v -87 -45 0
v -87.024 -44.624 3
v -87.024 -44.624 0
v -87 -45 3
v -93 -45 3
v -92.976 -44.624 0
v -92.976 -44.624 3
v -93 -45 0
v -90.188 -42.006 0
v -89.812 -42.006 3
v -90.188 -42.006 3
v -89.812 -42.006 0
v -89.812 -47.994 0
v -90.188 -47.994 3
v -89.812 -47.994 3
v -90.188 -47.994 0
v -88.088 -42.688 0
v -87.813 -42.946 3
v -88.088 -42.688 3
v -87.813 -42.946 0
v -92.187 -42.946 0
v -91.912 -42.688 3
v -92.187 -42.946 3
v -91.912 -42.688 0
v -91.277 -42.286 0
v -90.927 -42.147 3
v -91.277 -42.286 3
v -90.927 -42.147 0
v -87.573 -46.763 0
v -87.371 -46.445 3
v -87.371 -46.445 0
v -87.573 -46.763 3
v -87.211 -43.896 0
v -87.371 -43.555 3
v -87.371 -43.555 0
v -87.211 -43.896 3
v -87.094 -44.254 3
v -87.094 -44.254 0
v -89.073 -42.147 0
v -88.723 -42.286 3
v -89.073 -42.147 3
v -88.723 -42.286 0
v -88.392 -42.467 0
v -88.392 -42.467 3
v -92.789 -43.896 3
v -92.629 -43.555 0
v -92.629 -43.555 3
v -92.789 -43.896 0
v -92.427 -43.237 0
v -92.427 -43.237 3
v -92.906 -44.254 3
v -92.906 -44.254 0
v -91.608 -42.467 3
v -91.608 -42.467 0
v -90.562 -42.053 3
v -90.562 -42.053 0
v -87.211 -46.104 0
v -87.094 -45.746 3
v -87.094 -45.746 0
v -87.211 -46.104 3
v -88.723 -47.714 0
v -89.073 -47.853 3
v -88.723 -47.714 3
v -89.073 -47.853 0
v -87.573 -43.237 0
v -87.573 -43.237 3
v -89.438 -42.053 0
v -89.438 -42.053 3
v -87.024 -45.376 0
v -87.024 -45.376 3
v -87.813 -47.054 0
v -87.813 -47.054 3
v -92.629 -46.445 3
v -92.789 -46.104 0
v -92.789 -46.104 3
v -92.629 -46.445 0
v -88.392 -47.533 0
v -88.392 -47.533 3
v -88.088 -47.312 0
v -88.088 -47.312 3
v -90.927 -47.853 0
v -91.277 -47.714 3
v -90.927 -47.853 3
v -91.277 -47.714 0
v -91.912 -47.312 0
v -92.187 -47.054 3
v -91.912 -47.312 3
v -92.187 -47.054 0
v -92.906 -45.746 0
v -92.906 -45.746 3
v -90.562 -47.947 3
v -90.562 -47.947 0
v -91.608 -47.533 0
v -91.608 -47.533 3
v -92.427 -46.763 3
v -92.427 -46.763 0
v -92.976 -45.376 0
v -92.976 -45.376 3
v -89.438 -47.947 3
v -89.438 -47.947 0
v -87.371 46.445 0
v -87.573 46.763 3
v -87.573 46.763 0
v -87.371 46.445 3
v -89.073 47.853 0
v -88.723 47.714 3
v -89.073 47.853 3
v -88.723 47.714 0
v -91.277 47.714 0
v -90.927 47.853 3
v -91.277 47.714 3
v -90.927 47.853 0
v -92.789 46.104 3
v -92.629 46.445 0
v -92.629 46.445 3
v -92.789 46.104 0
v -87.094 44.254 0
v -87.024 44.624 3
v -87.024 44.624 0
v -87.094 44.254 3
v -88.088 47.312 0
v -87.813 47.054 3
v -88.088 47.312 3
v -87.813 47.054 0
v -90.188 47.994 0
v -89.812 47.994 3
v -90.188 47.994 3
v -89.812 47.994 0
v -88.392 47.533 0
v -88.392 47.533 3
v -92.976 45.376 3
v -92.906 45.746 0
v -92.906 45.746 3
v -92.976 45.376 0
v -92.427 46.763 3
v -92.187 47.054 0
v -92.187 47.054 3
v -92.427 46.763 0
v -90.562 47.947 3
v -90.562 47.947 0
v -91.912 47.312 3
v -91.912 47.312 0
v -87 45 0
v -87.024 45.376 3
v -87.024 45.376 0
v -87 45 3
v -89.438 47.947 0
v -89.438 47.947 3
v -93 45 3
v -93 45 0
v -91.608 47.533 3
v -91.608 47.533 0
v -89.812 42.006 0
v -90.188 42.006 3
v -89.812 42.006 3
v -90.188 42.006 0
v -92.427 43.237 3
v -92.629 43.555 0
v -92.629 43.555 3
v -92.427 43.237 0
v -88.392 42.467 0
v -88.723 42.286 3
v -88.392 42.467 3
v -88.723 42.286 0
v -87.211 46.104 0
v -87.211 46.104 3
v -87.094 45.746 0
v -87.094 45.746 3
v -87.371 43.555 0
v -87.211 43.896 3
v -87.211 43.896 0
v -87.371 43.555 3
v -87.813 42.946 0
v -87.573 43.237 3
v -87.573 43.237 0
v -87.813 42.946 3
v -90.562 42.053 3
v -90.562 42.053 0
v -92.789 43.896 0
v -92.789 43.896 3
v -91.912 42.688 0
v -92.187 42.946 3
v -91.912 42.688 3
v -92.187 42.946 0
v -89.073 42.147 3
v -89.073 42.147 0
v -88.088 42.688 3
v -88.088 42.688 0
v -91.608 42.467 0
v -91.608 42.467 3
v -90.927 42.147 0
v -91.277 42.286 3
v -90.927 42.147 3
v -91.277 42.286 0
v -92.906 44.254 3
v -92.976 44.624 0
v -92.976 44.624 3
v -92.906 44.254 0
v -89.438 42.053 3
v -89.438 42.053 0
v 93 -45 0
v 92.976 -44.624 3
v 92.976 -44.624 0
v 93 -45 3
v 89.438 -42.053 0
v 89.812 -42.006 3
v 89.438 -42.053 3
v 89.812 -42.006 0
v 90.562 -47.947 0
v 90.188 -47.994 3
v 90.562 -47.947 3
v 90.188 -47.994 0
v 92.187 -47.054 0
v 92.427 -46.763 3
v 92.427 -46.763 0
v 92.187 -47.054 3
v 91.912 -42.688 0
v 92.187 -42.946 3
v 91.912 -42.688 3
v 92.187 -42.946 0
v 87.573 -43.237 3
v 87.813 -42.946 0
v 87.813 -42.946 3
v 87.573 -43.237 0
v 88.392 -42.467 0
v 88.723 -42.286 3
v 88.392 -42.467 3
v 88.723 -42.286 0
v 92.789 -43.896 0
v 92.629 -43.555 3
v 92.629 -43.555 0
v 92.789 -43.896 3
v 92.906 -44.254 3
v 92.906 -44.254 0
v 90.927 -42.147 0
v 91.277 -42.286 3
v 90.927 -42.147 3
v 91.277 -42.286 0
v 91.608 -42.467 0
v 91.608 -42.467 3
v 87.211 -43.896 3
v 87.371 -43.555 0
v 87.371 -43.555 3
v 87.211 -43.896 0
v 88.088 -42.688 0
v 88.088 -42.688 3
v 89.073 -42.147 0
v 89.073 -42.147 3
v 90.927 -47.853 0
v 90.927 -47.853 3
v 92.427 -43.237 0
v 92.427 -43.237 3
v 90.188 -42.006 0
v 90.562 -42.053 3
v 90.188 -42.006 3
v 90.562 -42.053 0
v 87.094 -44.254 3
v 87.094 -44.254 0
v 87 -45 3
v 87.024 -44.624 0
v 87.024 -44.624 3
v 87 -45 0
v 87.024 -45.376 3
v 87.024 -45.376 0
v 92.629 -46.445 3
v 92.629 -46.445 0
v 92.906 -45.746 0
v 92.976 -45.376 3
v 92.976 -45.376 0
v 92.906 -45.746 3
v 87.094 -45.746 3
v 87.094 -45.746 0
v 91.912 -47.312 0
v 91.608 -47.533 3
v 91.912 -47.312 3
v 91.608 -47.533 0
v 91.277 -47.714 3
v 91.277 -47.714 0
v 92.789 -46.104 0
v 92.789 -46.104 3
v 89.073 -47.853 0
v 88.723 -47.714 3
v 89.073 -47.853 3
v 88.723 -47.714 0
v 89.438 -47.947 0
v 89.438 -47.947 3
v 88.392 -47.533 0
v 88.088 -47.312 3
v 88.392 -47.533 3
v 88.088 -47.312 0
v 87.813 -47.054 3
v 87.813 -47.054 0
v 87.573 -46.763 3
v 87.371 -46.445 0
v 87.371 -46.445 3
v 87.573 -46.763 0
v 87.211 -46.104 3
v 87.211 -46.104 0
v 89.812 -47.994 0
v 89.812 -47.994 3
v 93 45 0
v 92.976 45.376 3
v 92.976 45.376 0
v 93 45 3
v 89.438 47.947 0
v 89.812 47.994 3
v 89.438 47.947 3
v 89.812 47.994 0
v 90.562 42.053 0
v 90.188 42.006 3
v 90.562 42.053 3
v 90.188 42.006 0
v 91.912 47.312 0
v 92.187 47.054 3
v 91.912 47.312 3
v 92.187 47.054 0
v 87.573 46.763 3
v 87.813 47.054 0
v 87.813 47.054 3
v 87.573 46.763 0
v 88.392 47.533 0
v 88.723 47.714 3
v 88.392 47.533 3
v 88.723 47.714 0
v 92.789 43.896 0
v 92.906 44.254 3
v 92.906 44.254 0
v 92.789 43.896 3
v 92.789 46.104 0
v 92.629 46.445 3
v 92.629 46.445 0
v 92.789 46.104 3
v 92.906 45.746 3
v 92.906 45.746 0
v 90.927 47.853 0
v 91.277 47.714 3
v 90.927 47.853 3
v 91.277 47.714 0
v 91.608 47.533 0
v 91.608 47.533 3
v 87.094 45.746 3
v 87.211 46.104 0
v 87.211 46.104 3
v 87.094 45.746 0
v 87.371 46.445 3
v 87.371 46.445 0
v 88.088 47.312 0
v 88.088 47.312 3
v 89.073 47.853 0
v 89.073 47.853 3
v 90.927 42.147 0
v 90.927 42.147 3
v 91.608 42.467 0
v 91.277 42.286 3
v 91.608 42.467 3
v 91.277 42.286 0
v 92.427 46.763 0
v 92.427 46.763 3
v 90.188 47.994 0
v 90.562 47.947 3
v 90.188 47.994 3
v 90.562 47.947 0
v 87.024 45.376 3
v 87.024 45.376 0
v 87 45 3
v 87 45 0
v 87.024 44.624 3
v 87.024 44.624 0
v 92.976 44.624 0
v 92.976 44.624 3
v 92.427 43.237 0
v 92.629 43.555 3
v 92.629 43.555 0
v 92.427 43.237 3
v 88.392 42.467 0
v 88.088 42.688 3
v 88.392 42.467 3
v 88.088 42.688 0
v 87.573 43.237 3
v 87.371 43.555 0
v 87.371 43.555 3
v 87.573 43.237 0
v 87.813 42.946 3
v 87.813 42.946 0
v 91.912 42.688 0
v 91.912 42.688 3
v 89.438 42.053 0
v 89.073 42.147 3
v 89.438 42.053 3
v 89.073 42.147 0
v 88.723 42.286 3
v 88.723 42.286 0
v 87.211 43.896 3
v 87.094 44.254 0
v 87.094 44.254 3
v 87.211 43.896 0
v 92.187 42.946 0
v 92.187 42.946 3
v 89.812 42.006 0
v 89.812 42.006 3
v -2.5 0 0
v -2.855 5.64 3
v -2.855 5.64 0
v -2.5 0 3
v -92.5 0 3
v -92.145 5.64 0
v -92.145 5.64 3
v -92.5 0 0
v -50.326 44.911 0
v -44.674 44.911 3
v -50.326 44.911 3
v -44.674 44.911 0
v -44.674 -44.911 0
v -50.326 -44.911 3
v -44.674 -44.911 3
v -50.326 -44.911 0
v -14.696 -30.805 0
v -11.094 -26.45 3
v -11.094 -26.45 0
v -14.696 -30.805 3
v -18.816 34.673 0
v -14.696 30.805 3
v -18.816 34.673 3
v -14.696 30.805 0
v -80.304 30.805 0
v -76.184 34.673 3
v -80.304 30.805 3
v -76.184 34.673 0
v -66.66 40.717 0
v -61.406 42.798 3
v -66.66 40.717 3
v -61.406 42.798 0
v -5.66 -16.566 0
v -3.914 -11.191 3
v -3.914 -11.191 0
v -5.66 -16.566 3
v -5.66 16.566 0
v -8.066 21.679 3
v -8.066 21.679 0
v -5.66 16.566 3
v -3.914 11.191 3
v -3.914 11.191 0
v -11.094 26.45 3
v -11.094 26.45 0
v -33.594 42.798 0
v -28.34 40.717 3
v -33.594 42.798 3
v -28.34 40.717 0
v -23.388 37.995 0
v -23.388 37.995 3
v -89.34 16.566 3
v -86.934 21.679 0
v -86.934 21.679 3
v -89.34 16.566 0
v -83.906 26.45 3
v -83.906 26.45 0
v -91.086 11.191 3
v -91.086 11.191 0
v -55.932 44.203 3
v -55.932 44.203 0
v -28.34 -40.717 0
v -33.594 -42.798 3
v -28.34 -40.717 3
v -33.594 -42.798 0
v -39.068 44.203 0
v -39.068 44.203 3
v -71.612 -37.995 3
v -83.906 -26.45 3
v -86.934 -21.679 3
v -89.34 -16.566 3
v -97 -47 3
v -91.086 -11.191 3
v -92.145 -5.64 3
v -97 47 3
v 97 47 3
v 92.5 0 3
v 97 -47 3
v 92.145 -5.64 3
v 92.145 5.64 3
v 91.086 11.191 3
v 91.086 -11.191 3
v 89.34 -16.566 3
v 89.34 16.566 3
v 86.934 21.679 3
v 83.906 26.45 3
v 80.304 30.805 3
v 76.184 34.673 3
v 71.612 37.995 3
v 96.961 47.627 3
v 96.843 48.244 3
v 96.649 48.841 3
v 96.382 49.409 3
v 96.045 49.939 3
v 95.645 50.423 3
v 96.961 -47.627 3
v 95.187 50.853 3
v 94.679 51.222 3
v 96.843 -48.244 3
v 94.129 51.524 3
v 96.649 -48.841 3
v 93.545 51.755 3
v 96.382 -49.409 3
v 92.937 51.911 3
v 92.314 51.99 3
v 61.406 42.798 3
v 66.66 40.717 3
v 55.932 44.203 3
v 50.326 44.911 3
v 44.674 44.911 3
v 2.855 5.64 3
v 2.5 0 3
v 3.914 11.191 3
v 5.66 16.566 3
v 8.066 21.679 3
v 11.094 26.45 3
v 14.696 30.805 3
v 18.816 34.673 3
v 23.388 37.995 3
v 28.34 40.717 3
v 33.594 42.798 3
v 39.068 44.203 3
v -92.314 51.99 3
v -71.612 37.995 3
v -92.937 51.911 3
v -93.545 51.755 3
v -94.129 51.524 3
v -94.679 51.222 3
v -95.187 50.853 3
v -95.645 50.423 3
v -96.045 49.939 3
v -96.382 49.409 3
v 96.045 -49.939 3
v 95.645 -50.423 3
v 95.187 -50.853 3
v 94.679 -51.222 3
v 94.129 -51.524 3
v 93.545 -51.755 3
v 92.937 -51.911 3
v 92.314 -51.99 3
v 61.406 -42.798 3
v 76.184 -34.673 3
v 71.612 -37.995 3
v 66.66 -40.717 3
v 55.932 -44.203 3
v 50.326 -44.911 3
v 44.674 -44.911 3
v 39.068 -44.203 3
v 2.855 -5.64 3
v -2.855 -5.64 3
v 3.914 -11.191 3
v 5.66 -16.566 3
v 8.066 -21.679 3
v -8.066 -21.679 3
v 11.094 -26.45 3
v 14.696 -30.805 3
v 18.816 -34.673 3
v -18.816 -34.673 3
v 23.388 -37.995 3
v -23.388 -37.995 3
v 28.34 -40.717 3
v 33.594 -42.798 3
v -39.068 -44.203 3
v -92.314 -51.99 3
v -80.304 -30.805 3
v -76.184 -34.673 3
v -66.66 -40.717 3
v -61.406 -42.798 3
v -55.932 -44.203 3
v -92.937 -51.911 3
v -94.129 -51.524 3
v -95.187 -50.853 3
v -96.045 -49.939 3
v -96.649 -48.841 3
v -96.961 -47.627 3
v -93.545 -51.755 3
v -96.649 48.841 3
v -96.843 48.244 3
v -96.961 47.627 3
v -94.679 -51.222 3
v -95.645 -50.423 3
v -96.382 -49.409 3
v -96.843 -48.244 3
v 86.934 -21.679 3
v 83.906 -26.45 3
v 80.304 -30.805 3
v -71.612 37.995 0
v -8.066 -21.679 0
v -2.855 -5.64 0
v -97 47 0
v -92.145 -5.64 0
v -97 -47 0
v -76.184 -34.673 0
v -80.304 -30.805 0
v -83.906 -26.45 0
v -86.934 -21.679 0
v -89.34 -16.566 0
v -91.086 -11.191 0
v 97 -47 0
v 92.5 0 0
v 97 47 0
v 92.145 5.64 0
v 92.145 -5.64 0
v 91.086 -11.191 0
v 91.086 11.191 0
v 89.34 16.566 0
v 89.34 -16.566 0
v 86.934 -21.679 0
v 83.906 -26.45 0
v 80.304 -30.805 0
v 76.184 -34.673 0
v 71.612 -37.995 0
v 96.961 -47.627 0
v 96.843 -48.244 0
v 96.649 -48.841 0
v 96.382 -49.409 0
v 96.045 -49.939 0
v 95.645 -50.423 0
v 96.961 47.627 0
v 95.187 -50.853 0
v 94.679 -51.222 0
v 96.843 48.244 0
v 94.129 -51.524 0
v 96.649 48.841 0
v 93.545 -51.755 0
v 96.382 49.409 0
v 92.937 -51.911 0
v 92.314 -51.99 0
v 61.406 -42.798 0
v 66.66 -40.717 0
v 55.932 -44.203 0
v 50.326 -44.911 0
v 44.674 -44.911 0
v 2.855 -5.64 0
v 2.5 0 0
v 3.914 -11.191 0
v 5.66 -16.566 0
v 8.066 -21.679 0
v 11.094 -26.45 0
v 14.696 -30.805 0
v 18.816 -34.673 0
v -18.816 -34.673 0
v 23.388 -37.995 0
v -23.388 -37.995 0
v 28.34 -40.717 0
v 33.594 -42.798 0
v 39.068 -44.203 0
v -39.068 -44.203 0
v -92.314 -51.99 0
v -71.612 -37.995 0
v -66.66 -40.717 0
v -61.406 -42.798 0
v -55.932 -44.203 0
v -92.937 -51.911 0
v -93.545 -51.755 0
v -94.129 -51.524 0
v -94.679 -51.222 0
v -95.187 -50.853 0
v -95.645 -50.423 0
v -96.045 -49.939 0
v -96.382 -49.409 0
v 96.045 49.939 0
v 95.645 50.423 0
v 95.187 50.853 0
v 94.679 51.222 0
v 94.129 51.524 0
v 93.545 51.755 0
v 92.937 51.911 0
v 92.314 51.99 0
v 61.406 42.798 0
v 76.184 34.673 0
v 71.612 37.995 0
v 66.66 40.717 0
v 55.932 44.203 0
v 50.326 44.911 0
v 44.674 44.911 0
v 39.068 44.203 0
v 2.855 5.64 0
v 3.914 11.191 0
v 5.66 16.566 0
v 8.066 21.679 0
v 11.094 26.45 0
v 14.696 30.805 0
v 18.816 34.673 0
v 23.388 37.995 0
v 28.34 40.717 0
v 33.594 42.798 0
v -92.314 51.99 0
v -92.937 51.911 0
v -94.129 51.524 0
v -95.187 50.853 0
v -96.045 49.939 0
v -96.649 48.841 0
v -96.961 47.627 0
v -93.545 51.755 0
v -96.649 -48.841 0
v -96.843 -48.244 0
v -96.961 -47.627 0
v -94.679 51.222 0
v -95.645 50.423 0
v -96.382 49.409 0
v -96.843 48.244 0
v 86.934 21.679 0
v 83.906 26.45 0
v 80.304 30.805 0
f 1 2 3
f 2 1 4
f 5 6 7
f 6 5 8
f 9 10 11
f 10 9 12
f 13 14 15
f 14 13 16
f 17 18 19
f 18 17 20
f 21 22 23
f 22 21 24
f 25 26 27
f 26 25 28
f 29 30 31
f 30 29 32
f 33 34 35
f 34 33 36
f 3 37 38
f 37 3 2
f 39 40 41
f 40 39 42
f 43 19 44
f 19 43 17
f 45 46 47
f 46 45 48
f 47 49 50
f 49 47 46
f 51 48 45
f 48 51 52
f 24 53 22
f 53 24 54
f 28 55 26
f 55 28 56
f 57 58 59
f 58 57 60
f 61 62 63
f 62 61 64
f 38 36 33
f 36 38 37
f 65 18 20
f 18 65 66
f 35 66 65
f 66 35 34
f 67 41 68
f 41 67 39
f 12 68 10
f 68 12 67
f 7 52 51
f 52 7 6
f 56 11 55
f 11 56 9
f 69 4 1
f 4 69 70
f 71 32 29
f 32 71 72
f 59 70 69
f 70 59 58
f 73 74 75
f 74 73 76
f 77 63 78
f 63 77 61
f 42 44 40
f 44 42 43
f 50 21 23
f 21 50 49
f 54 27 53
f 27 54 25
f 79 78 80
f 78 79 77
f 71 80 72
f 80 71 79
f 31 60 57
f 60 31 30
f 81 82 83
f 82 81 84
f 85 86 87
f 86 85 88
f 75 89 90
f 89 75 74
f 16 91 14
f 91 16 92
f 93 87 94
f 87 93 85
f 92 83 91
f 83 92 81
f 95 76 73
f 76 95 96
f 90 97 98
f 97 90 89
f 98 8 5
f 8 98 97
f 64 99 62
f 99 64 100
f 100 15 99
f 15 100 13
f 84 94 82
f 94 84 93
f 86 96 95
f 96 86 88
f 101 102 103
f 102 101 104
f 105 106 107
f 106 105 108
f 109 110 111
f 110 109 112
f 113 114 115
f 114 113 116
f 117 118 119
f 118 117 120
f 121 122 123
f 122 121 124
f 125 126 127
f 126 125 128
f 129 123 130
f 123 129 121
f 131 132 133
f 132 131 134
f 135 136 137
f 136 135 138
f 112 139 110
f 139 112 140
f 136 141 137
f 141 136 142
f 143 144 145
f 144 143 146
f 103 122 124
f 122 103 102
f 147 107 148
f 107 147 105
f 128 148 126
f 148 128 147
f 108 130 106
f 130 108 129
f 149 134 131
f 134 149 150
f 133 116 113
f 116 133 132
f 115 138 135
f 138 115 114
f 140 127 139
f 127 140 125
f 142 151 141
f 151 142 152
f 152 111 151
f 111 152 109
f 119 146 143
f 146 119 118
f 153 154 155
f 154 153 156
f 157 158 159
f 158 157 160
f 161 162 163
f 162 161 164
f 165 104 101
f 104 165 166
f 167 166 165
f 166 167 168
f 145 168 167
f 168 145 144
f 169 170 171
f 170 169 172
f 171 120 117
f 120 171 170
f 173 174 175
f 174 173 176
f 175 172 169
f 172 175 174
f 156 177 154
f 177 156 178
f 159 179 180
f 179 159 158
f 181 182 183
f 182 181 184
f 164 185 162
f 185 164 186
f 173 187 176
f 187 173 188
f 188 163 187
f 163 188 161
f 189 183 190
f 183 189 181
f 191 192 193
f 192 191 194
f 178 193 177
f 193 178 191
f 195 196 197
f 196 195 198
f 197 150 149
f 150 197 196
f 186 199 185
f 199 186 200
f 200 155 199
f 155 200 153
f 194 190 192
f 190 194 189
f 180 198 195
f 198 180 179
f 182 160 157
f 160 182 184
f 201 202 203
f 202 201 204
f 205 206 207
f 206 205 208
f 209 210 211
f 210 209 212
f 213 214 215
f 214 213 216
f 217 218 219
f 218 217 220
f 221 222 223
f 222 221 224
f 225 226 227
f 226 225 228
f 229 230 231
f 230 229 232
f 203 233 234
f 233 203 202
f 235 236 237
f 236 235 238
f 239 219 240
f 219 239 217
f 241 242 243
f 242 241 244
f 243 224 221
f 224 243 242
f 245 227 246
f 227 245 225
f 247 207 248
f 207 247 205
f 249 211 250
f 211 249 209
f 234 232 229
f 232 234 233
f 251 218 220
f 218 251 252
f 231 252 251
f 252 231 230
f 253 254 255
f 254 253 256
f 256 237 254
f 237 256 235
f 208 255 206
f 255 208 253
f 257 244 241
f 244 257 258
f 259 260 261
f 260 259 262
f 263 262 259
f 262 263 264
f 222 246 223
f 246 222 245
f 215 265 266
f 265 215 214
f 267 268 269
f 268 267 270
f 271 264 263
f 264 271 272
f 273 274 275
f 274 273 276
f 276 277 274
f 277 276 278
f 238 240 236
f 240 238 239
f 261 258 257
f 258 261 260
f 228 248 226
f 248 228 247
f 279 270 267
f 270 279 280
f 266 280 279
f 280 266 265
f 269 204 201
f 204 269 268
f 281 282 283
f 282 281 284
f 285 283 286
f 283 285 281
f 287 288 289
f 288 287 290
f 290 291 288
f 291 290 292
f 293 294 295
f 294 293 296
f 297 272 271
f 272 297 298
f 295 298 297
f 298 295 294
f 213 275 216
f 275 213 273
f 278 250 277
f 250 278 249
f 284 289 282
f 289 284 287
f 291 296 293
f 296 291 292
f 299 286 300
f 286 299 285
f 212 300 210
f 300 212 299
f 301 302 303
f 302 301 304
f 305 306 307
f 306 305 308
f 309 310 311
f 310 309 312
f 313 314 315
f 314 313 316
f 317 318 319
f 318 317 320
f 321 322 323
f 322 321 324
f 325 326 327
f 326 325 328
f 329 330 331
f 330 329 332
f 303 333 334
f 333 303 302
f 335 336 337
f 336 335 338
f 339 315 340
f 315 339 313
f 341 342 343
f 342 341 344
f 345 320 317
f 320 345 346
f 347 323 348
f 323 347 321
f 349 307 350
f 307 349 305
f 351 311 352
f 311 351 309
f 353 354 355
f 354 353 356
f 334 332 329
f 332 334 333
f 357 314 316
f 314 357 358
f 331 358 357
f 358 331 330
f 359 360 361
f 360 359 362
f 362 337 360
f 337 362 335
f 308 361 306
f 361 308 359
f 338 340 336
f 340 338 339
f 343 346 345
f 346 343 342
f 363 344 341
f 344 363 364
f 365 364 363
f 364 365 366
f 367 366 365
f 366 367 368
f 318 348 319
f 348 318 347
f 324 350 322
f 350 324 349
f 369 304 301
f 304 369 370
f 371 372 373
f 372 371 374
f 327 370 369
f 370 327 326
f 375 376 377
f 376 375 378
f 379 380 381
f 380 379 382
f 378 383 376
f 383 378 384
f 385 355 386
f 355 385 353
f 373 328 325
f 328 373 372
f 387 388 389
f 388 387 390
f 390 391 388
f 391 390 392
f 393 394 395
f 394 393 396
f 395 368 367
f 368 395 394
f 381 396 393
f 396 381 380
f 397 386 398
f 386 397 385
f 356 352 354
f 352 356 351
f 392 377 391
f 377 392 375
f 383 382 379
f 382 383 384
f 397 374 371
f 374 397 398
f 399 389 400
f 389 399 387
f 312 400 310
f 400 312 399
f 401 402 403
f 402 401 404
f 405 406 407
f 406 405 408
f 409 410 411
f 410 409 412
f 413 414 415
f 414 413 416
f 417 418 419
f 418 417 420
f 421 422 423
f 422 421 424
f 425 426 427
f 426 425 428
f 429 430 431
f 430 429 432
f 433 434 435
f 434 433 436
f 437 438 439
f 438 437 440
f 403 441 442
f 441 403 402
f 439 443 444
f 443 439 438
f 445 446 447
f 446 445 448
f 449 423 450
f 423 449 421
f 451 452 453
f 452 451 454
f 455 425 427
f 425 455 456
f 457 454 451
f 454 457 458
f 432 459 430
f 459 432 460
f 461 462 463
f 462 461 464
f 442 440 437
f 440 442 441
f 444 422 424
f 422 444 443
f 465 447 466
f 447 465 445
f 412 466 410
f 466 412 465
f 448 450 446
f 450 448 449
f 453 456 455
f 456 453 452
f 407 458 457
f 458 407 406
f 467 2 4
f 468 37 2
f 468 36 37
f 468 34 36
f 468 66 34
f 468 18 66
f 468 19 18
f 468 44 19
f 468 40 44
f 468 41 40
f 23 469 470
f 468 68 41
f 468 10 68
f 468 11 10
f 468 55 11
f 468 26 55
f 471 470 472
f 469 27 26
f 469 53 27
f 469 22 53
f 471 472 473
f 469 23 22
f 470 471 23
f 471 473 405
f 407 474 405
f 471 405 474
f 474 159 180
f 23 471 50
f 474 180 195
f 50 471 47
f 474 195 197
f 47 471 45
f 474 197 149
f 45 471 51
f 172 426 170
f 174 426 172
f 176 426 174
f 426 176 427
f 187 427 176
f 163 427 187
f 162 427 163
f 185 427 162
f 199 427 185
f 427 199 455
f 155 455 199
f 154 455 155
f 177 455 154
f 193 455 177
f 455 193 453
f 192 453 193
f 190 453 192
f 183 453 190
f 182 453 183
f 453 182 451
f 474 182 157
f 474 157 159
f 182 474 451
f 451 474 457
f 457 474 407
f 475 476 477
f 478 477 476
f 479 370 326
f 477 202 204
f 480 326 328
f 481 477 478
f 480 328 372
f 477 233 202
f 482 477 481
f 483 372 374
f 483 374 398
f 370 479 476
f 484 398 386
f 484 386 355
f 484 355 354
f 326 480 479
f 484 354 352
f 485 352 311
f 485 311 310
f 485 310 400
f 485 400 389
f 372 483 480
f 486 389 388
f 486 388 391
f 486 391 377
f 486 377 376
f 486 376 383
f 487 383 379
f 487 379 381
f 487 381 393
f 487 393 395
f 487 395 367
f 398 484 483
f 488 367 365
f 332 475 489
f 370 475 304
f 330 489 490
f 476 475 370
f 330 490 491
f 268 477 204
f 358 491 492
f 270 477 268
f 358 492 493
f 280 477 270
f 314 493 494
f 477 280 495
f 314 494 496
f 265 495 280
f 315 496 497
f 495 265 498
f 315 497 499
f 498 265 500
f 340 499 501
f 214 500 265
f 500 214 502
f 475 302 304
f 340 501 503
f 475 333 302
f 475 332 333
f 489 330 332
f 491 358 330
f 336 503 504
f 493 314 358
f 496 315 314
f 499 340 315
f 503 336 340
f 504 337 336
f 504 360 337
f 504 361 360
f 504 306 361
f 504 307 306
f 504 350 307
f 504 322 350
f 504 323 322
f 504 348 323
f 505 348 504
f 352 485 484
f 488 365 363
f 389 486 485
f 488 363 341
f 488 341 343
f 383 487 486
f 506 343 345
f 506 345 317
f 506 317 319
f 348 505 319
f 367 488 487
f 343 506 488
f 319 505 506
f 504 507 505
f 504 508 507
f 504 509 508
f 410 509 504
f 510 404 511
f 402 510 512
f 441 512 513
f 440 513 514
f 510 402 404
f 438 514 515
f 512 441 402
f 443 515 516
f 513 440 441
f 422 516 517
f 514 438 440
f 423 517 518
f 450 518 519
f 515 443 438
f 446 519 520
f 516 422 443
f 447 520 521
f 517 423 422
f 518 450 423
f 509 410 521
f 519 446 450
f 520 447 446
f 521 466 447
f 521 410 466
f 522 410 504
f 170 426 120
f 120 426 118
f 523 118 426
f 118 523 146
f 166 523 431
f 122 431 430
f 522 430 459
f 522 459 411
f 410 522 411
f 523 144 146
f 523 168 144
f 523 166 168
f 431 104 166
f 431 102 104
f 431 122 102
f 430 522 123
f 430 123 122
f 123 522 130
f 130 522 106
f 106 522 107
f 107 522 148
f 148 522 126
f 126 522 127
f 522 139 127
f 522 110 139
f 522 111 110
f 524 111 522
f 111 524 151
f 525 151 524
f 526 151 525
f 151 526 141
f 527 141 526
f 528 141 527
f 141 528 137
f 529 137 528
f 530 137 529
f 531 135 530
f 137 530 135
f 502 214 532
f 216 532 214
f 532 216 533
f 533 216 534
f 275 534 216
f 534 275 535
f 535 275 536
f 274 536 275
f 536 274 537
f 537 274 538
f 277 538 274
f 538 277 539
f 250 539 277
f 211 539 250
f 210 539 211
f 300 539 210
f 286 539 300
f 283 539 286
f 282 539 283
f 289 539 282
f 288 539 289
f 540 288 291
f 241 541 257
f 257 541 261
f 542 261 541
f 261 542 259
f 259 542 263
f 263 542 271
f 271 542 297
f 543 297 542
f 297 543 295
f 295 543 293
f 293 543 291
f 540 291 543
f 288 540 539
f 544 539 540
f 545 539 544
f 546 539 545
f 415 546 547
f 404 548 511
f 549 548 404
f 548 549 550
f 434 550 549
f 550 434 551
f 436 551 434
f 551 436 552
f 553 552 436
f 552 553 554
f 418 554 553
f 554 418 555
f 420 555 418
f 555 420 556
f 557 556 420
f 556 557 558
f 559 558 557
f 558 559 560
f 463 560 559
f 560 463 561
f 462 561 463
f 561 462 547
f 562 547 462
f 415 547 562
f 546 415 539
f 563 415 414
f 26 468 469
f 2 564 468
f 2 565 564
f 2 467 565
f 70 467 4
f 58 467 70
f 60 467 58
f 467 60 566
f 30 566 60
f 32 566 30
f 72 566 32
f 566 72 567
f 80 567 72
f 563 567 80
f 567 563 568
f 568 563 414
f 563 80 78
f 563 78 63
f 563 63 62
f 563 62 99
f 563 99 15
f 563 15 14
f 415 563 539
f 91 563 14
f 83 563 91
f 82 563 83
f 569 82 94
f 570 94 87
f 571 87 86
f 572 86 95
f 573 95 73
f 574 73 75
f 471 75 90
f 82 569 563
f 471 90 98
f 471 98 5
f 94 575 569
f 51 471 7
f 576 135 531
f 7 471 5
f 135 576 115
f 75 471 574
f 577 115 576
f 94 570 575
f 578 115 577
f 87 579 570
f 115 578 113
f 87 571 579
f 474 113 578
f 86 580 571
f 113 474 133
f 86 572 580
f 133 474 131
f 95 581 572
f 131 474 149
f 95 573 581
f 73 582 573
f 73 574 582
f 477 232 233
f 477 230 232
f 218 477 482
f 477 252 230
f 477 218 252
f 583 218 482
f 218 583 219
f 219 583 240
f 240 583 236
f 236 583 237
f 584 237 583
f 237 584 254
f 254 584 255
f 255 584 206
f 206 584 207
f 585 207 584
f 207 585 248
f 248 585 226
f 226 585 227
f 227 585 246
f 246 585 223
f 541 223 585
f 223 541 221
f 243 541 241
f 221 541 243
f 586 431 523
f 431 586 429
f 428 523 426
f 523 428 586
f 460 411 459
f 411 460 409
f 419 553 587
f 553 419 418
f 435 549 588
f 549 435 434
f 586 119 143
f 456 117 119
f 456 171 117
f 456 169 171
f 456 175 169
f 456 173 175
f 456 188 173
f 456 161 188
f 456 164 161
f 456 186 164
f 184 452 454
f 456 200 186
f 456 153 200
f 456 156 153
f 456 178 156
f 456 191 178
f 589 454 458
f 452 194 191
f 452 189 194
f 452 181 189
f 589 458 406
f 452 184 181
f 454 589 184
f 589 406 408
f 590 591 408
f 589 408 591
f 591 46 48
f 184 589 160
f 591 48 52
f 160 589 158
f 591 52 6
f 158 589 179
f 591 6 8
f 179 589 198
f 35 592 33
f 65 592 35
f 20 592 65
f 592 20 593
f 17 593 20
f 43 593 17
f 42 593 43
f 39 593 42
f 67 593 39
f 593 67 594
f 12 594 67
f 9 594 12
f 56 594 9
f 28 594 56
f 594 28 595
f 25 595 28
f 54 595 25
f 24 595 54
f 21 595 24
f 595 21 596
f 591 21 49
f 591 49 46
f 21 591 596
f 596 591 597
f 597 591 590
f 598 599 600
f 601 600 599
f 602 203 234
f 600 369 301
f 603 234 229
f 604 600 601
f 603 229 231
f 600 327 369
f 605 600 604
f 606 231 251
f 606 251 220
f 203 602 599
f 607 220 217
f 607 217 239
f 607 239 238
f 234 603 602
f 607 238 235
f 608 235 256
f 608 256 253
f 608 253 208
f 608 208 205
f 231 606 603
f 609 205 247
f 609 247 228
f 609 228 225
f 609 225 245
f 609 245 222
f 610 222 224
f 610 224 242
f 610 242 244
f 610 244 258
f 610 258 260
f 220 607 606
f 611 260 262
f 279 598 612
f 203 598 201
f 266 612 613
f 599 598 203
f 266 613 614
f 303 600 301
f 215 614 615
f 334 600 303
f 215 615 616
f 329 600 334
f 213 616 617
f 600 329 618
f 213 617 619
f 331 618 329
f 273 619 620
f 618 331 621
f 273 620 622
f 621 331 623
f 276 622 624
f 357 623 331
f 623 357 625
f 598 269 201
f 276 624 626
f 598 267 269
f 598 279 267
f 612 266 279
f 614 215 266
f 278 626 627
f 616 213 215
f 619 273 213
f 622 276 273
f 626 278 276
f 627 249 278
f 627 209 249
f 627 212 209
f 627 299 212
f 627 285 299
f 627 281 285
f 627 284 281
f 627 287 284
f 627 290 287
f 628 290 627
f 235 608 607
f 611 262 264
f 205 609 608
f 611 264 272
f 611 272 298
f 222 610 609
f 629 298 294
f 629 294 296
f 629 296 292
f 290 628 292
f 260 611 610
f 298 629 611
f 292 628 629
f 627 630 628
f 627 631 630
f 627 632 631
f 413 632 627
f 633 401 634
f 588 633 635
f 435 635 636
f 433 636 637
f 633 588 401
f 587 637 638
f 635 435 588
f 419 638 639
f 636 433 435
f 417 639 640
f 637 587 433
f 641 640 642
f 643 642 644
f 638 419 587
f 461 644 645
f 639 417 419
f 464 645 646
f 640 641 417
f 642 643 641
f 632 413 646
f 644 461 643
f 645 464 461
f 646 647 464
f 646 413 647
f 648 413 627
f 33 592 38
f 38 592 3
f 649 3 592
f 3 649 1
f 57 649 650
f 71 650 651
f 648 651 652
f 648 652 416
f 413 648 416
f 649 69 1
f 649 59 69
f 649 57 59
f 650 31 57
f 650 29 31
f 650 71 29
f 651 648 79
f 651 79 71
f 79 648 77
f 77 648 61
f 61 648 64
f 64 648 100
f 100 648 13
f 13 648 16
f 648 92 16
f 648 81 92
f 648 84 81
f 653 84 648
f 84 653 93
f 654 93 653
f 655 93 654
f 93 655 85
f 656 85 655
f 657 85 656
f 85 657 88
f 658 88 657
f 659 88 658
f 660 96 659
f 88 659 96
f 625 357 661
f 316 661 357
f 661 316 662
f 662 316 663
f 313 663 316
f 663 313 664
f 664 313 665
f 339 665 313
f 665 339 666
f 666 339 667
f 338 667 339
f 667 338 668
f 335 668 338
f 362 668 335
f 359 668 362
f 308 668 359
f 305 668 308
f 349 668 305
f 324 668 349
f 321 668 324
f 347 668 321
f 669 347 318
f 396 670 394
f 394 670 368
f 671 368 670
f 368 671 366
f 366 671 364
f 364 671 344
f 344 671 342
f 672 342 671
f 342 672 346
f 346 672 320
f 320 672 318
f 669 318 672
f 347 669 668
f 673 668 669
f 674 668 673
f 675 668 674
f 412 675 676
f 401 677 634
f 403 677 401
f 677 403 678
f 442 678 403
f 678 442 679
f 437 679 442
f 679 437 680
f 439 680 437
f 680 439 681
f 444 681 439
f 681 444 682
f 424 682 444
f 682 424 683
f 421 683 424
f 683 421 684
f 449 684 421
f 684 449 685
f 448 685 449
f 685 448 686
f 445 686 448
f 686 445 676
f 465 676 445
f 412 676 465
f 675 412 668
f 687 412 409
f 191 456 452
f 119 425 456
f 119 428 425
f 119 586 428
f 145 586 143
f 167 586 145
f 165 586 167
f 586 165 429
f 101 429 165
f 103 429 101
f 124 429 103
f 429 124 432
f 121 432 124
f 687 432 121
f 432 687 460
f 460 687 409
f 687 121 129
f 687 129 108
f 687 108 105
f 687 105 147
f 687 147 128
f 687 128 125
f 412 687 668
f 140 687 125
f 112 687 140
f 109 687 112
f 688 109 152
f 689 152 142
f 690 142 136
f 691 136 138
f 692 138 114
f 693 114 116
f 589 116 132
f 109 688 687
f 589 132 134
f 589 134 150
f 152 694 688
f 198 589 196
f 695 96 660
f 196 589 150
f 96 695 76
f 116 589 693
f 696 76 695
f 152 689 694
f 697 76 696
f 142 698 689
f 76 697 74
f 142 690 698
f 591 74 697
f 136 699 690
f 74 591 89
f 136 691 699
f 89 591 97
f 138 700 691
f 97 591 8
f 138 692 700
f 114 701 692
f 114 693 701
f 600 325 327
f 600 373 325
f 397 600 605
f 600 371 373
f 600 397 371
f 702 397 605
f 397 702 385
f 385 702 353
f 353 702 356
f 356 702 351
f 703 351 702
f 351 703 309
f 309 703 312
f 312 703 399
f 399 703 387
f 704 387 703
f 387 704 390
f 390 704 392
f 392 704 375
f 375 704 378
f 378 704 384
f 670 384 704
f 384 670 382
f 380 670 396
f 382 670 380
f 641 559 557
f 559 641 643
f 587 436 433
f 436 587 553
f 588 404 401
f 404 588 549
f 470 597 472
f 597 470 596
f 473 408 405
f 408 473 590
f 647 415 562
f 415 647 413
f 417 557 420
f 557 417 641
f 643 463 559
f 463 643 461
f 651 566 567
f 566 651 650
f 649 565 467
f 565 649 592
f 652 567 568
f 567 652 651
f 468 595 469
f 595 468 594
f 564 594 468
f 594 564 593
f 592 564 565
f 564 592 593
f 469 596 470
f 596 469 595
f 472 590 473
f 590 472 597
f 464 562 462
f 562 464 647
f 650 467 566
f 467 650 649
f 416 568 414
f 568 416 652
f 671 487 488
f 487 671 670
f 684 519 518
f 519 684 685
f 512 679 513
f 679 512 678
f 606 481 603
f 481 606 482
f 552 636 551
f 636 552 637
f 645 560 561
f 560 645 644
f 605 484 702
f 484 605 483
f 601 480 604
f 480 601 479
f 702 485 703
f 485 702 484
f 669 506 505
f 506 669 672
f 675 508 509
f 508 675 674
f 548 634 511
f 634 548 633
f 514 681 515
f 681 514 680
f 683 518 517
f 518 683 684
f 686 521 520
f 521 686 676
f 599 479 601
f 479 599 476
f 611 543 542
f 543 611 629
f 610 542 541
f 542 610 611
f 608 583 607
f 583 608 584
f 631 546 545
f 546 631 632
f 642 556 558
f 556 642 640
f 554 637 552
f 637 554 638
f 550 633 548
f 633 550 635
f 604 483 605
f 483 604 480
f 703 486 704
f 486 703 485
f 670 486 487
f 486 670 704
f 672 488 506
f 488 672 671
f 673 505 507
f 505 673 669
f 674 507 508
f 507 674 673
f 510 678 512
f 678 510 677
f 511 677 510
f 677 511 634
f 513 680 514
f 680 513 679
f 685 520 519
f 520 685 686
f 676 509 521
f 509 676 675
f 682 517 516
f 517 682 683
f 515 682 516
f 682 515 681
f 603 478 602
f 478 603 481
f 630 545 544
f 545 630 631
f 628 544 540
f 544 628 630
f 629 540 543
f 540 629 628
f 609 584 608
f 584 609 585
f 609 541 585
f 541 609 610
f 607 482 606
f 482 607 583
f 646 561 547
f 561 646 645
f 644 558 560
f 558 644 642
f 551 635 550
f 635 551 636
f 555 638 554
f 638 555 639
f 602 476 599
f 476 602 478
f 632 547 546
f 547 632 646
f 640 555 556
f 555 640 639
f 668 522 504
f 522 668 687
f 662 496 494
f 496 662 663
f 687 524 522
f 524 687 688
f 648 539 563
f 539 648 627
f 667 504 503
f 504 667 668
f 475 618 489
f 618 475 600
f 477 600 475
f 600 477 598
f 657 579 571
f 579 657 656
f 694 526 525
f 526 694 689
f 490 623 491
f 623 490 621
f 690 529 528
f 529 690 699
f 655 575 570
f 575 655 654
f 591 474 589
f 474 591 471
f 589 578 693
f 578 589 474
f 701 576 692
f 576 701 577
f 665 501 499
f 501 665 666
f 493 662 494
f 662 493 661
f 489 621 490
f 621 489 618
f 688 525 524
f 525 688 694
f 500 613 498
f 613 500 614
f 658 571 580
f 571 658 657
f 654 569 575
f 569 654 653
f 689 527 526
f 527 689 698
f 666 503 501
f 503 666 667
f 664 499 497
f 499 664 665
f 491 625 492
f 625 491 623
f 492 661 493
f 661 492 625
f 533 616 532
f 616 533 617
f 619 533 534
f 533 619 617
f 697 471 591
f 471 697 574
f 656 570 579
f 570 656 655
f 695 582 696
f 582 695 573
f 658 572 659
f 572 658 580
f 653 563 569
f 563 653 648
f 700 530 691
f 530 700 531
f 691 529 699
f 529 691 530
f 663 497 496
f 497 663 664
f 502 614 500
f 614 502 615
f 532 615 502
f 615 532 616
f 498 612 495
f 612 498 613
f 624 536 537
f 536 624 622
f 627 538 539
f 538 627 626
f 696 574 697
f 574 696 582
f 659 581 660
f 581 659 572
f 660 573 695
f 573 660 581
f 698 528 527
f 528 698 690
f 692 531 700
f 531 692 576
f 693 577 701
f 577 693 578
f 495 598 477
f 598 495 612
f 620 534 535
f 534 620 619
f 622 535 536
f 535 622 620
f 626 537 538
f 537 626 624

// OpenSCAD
$fn = 50;


difference() {
	union() {
		hull() {
			translate(v = [-92.0000000000, 47.0000000000, 0]) {
				cylinder(h = 3, r = 5);
			}
			translate(v = [92.0000000000, 47.0000000000, 0]) {
				cylinder(h = 3, r = 5);
			}
			translate(v = [-92.0000000000, -47.0000000000, 0]) {
				cylinder(h = 3, r = 5);
			}
			translate(v = [92.0000000000, -47.0000000000, 0]) {
				cylinder(h = 3, r = 5);
			}
		}
	}
	union() {
		#translate(v = [-90.0000000000, -45.0000000000, -100.0000000000]) {
			cylinder(h = 200, r = 3.0000000000);
		}
		#translate(v = [-90.0000000000, 45.0000000000, -100.0000000000]) {
			cylinder(h = 200, r = 3.0000000000);
		}
		#translate(v = [90.0000000000, -45.0000000000, -100.0000000000]) {
			cylinder(h = 200, r = 3.0000000000);
		}
		#translate(v = [90.0000000000, 45.0000000000, -100.0000000000]) {
			cylinder(h = 200, r = 3.0000000000);
		}
		#translate(v = [-47.5000000000, 0, 0]) {
			cylinder(h = 3, r = 45.0000000000);
		}
		#translate(v = [47.5000000000, 0, 0]) {
			cylinder(h = 3, r = 45.0000000000);
		}
	}
}
